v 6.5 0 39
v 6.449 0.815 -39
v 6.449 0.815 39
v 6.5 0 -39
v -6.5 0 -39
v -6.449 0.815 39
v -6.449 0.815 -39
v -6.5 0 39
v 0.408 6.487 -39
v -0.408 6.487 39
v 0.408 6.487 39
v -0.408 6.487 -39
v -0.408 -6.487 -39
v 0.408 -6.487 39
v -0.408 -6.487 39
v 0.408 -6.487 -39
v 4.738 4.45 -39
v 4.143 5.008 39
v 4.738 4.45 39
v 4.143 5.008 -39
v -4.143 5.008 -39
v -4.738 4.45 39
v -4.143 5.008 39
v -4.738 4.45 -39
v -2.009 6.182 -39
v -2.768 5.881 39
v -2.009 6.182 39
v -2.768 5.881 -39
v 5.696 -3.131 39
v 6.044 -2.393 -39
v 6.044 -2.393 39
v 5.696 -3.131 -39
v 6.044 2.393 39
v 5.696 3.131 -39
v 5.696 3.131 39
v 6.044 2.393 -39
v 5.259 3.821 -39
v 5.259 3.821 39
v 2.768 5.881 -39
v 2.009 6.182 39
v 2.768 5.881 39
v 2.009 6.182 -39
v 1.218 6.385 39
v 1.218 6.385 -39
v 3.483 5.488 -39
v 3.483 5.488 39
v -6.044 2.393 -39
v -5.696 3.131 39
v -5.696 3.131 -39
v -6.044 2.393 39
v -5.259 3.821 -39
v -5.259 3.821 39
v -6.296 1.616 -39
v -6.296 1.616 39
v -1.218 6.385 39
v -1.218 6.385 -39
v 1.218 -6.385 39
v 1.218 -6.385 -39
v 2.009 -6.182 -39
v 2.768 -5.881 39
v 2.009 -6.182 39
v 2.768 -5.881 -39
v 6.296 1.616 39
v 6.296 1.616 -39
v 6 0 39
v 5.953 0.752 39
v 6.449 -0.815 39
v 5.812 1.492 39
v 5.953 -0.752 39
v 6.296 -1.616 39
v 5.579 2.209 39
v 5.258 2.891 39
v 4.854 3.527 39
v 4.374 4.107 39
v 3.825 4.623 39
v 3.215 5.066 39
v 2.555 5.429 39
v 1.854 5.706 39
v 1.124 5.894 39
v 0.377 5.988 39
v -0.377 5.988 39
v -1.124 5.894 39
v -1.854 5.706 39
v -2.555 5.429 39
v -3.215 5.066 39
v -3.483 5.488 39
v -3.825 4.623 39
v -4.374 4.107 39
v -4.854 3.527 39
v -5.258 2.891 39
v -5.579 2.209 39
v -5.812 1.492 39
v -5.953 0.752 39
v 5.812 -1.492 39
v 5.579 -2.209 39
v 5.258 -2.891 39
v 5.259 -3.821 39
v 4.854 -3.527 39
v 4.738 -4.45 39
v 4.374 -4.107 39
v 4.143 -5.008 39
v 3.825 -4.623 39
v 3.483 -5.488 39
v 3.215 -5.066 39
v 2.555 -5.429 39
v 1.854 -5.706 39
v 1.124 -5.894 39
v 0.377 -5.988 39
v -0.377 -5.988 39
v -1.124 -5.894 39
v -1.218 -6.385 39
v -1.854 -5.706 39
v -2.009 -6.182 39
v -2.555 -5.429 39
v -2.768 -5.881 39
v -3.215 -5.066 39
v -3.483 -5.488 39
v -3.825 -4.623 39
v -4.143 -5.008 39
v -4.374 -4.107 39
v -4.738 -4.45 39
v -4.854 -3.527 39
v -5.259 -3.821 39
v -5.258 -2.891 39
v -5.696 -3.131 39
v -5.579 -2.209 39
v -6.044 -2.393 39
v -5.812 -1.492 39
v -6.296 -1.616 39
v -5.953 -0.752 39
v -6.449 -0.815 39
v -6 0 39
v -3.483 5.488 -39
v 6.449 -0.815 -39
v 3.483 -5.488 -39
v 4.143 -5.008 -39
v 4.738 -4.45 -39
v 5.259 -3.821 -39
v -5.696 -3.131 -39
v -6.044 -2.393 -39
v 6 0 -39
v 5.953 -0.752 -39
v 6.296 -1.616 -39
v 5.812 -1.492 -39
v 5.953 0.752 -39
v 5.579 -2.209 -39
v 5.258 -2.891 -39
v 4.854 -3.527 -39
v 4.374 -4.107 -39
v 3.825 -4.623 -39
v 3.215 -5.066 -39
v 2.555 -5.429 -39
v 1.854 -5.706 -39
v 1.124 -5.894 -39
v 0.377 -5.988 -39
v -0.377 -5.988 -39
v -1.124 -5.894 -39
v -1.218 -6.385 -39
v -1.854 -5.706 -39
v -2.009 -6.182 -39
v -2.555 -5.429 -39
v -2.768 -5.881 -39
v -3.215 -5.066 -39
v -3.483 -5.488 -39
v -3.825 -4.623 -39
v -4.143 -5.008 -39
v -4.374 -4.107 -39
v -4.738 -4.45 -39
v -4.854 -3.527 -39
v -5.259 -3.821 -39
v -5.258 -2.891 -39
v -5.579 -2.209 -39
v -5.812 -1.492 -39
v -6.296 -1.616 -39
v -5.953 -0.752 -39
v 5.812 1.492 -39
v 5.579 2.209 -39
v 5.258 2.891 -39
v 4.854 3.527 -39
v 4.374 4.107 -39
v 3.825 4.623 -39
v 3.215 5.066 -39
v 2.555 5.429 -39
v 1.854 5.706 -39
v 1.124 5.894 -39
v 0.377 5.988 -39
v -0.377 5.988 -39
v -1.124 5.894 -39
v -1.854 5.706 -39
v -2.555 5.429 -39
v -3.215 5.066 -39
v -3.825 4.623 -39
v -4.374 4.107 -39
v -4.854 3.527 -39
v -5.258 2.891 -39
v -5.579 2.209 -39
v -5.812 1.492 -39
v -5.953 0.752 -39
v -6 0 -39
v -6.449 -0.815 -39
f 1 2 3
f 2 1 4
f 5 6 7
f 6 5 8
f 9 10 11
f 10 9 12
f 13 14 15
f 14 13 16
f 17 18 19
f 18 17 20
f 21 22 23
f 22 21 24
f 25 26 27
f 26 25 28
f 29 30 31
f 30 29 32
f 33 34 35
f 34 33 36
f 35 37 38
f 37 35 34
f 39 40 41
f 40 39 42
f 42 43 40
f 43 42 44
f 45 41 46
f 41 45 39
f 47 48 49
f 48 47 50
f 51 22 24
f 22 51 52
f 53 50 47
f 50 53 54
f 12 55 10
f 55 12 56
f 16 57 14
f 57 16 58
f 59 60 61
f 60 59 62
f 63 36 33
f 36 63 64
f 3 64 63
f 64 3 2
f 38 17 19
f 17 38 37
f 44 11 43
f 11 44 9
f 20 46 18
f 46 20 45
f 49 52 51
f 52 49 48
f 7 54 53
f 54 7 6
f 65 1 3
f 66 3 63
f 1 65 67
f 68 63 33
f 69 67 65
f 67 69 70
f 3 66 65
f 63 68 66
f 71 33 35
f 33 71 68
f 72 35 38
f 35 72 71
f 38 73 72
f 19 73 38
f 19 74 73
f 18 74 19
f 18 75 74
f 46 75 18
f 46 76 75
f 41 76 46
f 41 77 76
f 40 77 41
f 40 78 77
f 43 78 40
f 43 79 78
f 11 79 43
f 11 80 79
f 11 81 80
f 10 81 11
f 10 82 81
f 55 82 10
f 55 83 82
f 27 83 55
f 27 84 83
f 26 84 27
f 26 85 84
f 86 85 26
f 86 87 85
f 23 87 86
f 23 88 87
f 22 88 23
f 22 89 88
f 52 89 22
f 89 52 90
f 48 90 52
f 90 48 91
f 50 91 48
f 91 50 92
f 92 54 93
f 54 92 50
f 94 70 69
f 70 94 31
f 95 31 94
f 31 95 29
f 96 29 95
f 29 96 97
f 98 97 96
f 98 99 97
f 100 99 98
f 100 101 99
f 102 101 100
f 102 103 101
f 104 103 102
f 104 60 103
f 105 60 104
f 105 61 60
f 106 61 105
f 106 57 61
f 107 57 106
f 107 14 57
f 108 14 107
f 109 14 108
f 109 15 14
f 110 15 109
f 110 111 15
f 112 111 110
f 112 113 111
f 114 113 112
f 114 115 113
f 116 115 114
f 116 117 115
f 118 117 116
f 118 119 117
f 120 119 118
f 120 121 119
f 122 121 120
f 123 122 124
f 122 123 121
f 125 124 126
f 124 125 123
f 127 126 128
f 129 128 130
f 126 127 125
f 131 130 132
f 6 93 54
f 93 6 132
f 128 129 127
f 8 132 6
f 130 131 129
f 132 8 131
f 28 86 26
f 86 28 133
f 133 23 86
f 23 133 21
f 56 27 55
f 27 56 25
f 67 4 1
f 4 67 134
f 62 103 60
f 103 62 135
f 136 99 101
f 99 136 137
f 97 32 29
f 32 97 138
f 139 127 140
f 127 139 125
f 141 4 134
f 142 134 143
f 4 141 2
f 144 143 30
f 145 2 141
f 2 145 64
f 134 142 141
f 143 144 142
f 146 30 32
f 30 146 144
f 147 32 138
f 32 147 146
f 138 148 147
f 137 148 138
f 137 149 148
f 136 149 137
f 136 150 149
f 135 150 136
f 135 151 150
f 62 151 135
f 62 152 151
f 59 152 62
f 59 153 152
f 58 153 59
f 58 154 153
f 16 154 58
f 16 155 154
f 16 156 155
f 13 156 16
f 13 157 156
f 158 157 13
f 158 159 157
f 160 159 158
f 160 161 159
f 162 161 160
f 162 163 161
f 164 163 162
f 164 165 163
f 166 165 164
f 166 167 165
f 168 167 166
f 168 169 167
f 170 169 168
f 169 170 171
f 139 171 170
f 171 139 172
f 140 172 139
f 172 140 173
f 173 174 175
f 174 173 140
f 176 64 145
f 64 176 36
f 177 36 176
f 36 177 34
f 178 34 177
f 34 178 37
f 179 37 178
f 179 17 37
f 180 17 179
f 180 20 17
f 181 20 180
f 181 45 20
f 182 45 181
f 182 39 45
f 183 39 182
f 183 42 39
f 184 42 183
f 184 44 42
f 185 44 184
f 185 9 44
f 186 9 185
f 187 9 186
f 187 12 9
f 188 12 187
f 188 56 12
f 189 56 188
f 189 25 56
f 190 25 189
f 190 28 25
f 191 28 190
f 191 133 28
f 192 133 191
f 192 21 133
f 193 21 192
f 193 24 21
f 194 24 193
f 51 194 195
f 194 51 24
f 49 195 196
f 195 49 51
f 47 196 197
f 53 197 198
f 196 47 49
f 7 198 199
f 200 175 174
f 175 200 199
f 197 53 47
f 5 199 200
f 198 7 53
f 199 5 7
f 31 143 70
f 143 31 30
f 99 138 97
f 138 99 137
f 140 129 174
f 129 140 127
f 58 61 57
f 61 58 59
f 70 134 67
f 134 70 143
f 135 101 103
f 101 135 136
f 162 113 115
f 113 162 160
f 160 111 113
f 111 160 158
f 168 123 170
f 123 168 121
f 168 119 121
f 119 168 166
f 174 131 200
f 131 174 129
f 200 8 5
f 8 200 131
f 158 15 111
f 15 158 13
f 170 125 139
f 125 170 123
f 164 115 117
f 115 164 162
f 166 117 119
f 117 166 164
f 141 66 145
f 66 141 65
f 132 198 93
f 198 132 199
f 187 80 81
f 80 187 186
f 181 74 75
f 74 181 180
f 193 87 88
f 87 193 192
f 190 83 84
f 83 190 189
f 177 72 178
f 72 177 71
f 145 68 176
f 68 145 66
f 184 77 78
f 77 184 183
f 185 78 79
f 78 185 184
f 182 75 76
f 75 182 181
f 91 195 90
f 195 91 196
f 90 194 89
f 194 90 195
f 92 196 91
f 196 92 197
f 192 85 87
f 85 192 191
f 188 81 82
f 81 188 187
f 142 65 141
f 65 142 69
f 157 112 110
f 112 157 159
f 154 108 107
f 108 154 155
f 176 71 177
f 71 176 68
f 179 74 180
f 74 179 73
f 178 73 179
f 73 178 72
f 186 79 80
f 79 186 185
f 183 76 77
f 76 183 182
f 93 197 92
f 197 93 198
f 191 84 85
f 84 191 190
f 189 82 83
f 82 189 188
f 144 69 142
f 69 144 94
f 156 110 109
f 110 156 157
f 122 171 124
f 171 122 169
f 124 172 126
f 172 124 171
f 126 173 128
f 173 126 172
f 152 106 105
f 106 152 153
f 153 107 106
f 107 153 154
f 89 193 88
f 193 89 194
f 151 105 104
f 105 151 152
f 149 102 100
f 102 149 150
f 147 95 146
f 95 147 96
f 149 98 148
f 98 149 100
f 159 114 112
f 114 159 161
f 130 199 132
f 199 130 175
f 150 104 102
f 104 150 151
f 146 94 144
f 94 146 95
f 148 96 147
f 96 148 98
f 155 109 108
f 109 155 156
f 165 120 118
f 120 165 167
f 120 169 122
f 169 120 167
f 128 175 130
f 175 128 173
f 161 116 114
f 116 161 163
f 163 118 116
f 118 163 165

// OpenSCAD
$fn = 50;


difference() {
	union() {
		translate(v = [0, 0, -39.0000000000]) {
			cylinder(h = 78, r = 6.5000000000);
		}
	}
	union() {
		translate(v = [0, 0, -100.0000000000]) {
			cylinder(h = 200, r = 6);
		}
	}
}
